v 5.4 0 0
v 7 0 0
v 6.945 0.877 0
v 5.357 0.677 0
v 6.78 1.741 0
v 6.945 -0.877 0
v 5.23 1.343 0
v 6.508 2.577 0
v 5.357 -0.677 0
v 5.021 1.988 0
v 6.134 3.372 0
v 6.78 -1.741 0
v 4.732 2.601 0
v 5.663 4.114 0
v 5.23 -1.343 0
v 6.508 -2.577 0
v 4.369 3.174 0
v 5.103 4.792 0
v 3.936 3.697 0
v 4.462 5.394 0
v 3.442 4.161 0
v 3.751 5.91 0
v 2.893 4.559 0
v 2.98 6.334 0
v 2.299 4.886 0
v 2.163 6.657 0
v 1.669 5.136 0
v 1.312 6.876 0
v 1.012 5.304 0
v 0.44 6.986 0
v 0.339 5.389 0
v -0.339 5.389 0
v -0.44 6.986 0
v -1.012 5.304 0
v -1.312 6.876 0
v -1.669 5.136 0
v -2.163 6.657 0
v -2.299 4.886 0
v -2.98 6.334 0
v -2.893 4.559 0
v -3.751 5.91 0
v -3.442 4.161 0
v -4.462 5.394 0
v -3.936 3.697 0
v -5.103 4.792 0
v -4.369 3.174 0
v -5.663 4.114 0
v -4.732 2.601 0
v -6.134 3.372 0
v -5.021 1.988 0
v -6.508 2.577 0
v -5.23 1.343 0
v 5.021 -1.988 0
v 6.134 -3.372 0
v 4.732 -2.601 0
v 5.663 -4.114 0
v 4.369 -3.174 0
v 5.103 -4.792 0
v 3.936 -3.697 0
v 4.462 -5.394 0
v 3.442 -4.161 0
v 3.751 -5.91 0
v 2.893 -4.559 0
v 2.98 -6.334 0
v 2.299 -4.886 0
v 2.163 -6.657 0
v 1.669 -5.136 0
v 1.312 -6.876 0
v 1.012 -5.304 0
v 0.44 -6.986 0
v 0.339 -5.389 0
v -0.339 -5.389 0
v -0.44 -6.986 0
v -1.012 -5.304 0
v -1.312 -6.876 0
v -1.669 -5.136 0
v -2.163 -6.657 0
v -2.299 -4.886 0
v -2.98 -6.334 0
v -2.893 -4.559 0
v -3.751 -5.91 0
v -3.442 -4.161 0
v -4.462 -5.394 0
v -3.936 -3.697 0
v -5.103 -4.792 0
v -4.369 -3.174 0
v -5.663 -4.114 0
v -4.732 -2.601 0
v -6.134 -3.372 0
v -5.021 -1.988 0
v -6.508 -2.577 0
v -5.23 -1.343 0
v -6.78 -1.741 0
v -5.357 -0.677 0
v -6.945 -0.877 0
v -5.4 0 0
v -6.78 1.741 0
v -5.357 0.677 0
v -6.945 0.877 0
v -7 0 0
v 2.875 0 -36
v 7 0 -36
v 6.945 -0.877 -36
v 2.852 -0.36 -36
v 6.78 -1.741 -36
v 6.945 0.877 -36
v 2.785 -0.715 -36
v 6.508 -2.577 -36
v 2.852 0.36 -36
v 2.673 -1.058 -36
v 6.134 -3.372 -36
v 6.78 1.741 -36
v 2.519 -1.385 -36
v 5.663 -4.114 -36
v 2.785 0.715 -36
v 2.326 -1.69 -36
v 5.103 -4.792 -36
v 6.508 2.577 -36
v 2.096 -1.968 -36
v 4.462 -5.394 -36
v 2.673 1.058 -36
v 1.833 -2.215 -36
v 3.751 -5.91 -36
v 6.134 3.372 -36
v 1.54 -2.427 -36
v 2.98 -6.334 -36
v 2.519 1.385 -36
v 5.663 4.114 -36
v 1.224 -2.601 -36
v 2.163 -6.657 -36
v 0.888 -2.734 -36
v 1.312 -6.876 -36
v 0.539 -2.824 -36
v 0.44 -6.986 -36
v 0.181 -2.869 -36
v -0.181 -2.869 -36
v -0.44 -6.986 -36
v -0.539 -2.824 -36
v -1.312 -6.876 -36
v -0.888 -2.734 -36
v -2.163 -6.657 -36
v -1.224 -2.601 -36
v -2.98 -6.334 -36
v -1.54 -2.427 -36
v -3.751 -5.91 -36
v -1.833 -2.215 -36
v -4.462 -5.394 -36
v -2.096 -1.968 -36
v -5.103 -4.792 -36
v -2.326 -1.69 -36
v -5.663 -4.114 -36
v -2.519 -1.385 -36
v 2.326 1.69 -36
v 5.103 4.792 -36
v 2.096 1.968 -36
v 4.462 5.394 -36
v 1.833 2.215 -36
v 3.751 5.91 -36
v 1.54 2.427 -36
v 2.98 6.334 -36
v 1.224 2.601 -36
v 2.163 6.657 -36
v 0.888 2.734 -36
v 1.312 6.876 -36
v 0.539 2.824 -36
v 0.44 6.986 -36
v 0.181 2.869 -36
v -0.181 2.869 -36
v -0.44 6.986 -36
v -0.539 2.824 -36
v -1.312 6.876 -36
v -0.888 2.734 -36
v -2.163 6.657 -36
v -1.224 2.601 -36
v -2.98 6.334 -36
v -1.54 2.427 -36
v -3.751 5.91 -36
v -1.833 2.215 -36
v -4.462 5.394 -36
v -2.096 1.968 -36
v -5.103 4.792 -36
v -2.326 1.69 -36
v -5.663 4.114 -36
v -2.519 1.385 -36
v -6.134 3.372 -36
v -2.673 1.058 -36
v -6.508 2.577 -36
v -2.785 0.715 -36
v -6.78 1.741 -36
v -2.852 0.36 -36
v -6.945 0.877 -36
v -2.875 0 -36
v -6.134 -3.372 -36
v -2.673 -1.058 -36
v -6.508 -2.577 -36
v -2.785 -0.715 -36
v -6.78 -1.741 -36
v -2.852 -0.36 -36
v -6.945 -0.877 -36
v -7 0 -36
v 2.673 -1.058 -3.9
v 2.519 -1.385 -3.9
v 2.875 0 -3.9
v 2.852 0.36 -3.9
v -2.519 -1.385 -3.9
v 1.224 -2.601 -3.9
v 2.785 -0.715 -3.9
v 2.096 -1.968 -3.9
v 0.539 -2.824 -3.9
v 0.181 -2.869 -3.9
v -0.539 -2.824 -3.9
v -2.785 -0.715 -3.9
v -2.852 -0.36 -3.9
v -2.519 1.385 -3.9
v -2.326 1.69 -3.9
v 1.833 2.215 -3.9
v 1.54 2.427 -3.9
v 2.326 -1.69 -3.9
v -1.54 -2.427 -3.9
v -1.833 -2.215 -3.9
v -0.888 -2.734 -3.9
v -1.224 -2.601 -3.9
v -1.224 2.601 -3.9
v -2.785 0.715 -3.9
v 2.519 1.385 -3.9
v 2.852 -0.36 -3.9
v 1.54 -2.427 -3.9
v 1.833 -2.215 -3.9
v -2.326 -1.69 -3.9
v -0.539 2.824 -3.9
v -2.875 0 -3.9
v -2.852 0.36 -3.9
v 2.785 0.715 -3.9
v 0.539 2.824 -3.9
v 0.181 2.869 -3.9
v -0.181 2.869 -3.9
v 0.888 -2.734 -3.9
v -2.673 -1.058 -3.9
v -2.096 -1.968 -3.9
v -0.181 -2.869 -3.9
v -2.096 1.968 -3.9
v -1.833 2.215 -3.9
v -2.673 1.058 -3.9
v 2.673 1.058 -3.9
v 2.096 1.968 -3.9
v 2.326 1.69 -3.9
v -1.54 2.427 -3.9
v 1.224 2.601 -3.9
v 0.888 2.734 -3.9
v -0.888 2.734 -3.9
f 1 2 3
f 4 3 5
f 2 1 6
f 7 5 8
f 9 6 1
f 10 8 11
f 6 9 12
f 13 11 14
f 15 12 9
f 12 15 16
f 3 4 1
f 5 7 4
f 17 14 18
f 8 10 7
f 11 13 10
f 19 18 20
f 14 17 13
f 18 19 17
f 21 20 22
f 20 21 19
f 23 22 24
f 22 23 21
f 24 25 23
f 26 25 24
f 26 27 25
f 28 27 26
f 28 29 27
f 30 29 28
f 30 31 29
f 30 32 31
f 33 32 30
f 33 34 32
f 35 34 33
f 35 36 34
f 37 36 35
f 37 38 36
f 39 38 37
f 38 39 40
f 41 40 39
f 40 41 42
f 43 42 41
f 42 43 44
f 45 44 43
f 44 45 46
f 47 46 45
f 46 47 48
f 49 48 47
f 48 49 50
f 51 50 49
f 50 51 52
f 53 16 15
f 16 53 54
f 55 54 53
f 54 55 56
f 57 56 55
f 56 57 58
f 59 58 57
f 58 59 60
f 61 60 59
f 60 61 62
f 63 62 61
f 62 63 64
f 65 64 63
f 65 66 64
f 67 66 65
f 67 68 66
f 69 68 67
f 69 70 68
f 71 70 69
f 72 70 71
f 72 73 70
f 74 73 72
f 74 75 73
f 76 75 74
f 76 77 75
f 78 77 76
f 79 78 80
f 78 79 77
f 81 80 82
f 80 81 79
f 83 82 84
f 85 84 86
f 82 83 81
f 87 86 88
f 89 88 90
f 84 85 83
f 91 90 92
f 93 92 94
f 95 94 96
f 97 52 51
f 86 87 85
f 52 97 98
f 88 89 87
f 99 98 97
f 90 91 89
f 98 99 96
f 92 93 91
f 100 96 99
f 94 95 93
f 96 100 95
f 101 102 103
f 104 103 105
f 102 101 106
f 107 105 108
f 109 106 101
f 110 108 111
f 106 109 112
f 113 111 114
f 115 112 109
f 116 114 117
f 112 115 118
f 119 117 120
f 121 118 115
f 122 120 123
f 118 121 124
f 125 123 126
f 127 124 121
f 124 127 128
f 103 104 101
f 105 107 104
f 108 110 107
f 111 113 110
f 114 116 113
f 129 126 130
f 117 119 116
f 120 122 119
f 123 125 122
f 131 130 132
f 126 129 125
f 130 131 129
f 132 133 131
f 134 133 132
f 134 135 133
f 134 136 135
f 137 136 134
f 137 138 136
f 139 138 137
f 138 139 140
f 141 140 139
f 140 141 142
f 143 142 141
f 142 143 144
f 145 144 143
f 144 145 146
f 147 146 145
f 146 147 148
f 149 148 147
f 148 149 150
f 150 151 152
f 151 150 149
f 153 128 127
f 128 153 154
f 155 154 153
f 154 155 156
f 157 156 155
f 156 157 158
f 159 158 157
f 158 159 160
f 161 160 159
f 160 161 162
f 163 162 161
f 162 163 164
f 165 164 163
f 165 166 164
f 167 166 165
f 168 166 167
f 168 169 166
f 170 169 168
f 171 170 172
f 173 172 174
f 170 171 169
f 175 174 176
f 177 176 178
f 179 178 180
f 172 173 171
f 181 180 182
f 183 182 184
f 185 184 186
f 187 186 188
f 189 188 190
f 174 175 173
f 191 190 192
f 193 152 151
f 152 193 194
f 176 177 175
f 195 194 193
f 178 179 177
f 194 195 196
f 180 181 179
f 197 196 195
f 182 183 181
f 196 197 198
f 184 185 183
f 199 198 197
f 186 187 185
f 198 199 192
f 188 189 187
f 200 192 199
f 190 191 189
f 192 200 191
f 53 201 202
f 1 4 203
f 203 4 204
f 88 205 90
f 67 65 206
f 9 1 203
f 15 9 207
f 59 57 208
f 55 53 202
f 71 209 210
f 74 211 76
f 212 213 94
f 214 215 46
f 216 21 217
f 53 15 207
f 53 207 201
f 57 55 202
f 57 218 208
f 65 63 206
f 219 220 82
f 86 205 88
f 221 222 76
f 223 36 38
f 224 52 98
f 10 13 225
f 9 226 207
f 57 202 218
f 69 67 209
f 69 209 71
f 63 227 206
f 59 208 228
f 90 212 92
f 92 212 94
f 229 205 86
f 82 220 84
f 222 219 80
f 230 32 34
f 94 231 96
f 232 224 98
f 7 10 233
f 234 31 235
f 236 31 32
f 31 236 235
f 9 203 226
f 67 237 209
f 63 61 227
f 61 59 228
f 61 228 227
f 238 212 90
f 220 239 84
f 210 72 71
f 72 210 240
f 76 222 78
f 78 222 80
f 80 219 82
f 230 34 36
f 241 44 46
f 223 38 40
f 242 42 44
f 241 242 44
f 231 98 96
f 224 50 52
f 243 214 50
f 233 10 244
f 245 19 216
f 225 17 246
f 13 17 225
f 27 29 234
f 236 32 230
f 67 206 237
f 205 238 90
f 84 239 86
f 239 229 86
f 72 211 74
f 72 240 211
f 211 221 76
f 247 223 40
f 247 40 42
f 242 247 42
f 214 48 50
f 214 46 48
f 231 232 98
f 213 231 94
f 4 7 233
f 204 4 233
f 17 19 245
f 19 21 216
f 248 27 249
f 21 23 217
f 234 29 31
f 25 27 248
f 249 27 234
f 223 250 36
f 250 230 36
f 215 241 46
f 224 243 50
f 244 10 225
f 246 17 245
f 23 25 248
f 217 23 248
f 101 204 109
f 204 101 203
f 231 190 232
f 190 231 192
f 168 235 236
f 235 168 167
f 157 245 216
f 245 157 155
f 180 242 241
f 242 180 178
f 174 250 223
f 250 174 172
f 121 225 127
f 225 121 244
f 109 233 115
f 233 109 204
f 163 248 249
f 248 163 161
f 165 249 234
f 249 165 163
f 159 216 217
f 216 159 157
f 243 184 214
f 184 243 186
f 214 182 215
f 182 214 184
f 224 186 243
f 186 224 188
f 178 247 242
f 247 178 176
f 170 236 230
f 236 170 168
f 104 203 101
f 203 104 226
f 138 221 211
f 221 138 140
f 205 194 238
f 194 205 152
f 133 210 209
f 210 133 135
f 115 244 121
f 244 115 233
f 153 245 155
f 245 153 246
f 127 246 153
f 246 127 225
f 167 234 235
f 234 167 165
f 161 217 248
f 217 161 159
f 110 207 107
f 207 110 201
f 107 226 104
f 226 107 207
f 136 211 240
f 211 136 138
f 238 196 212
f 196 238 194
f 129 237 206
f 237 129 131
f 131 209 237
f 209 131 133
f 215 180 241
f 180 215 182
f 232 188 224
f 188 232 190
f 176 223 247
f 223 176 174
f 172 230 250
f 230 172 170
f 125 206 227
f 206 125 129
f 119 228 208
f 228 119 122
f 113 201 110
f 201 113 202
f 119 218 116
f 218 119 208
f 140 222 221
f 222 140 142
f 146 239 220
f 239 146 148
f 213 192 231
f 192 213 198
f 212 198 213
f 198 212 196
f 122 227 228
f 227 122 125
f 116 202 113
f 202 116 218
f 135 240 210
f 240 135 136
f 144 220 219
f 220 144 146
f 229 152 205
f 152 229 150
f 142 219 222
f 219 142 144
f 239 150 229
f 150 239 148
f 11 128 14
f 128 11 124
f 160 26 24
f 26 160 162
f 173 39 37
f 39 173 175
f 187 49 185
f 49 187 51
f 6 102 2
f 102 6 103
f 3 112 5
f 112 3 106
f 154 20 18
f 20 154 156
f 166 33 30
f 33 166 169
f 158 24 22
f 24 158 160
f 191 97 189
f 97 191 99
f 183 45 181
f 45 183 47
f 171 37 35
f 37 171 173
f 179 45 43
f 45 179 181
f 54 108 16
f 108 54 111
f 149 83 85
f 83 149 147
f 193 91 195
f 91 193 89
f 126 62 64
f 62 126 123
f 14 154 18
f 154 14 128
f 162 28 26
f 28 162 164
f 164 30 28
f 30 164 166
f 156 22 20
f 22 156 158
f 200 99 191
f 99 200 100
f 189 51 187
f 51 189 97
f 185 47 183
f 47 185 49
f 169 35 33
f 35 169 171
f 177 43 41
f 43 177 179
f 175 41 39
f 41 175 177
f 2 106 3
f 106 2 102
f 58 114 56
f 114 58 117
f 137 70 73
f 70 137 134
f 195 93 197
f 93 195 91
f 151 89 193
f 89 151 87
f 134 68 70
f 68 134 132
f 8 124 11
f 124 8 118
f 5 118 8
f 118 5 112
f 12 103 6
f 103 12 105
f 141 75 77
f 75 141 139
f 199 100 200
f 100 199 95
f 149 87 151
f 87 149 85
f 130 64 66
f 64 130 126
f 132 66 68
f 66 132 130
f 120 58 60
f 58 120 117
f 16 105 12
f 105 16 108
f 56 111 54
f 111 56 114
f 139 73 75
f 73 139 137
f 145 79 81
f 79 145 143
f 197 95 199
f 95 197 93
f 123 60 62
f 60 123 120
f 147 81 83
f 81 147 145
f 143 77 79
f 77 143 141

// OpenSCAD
$fn = 50;


difference() {
	union() {
		translate(v = [0, 0, -36.0000000000]) {
			cylinder(h = 36, r = 7.0000000000);
		}
		cylinder(h = 0, r = 13.0000000000);
	}
	union() {
		translate(v = [0, 0, 0]) {
			rotate(a = [0, 0, 0]) {
				difference() {
					union() {
						#translate(v = [0, 0, -36.0000000000]) {
							cylinder(h = 36, r = 2.6000000000);
						}
						#translate(v = [0, 0, -3.9000000000]) {
							cylinder(h = 3.9000000000, r = 7.0000000000, r1 = 2.8750000000, r2 = 5.4000000000);
						}
						#translate(v = [0, 0, -36.0000000000]) {
							cylinder(h = 36, r = 2.8750000000);
						}
						#translate(v = [0, 0, -36.0000000000]) {
							cylinder(h = 36, r = 2.6000000000);
						}
					}
					union();
				}
			}
		}
	}
}
